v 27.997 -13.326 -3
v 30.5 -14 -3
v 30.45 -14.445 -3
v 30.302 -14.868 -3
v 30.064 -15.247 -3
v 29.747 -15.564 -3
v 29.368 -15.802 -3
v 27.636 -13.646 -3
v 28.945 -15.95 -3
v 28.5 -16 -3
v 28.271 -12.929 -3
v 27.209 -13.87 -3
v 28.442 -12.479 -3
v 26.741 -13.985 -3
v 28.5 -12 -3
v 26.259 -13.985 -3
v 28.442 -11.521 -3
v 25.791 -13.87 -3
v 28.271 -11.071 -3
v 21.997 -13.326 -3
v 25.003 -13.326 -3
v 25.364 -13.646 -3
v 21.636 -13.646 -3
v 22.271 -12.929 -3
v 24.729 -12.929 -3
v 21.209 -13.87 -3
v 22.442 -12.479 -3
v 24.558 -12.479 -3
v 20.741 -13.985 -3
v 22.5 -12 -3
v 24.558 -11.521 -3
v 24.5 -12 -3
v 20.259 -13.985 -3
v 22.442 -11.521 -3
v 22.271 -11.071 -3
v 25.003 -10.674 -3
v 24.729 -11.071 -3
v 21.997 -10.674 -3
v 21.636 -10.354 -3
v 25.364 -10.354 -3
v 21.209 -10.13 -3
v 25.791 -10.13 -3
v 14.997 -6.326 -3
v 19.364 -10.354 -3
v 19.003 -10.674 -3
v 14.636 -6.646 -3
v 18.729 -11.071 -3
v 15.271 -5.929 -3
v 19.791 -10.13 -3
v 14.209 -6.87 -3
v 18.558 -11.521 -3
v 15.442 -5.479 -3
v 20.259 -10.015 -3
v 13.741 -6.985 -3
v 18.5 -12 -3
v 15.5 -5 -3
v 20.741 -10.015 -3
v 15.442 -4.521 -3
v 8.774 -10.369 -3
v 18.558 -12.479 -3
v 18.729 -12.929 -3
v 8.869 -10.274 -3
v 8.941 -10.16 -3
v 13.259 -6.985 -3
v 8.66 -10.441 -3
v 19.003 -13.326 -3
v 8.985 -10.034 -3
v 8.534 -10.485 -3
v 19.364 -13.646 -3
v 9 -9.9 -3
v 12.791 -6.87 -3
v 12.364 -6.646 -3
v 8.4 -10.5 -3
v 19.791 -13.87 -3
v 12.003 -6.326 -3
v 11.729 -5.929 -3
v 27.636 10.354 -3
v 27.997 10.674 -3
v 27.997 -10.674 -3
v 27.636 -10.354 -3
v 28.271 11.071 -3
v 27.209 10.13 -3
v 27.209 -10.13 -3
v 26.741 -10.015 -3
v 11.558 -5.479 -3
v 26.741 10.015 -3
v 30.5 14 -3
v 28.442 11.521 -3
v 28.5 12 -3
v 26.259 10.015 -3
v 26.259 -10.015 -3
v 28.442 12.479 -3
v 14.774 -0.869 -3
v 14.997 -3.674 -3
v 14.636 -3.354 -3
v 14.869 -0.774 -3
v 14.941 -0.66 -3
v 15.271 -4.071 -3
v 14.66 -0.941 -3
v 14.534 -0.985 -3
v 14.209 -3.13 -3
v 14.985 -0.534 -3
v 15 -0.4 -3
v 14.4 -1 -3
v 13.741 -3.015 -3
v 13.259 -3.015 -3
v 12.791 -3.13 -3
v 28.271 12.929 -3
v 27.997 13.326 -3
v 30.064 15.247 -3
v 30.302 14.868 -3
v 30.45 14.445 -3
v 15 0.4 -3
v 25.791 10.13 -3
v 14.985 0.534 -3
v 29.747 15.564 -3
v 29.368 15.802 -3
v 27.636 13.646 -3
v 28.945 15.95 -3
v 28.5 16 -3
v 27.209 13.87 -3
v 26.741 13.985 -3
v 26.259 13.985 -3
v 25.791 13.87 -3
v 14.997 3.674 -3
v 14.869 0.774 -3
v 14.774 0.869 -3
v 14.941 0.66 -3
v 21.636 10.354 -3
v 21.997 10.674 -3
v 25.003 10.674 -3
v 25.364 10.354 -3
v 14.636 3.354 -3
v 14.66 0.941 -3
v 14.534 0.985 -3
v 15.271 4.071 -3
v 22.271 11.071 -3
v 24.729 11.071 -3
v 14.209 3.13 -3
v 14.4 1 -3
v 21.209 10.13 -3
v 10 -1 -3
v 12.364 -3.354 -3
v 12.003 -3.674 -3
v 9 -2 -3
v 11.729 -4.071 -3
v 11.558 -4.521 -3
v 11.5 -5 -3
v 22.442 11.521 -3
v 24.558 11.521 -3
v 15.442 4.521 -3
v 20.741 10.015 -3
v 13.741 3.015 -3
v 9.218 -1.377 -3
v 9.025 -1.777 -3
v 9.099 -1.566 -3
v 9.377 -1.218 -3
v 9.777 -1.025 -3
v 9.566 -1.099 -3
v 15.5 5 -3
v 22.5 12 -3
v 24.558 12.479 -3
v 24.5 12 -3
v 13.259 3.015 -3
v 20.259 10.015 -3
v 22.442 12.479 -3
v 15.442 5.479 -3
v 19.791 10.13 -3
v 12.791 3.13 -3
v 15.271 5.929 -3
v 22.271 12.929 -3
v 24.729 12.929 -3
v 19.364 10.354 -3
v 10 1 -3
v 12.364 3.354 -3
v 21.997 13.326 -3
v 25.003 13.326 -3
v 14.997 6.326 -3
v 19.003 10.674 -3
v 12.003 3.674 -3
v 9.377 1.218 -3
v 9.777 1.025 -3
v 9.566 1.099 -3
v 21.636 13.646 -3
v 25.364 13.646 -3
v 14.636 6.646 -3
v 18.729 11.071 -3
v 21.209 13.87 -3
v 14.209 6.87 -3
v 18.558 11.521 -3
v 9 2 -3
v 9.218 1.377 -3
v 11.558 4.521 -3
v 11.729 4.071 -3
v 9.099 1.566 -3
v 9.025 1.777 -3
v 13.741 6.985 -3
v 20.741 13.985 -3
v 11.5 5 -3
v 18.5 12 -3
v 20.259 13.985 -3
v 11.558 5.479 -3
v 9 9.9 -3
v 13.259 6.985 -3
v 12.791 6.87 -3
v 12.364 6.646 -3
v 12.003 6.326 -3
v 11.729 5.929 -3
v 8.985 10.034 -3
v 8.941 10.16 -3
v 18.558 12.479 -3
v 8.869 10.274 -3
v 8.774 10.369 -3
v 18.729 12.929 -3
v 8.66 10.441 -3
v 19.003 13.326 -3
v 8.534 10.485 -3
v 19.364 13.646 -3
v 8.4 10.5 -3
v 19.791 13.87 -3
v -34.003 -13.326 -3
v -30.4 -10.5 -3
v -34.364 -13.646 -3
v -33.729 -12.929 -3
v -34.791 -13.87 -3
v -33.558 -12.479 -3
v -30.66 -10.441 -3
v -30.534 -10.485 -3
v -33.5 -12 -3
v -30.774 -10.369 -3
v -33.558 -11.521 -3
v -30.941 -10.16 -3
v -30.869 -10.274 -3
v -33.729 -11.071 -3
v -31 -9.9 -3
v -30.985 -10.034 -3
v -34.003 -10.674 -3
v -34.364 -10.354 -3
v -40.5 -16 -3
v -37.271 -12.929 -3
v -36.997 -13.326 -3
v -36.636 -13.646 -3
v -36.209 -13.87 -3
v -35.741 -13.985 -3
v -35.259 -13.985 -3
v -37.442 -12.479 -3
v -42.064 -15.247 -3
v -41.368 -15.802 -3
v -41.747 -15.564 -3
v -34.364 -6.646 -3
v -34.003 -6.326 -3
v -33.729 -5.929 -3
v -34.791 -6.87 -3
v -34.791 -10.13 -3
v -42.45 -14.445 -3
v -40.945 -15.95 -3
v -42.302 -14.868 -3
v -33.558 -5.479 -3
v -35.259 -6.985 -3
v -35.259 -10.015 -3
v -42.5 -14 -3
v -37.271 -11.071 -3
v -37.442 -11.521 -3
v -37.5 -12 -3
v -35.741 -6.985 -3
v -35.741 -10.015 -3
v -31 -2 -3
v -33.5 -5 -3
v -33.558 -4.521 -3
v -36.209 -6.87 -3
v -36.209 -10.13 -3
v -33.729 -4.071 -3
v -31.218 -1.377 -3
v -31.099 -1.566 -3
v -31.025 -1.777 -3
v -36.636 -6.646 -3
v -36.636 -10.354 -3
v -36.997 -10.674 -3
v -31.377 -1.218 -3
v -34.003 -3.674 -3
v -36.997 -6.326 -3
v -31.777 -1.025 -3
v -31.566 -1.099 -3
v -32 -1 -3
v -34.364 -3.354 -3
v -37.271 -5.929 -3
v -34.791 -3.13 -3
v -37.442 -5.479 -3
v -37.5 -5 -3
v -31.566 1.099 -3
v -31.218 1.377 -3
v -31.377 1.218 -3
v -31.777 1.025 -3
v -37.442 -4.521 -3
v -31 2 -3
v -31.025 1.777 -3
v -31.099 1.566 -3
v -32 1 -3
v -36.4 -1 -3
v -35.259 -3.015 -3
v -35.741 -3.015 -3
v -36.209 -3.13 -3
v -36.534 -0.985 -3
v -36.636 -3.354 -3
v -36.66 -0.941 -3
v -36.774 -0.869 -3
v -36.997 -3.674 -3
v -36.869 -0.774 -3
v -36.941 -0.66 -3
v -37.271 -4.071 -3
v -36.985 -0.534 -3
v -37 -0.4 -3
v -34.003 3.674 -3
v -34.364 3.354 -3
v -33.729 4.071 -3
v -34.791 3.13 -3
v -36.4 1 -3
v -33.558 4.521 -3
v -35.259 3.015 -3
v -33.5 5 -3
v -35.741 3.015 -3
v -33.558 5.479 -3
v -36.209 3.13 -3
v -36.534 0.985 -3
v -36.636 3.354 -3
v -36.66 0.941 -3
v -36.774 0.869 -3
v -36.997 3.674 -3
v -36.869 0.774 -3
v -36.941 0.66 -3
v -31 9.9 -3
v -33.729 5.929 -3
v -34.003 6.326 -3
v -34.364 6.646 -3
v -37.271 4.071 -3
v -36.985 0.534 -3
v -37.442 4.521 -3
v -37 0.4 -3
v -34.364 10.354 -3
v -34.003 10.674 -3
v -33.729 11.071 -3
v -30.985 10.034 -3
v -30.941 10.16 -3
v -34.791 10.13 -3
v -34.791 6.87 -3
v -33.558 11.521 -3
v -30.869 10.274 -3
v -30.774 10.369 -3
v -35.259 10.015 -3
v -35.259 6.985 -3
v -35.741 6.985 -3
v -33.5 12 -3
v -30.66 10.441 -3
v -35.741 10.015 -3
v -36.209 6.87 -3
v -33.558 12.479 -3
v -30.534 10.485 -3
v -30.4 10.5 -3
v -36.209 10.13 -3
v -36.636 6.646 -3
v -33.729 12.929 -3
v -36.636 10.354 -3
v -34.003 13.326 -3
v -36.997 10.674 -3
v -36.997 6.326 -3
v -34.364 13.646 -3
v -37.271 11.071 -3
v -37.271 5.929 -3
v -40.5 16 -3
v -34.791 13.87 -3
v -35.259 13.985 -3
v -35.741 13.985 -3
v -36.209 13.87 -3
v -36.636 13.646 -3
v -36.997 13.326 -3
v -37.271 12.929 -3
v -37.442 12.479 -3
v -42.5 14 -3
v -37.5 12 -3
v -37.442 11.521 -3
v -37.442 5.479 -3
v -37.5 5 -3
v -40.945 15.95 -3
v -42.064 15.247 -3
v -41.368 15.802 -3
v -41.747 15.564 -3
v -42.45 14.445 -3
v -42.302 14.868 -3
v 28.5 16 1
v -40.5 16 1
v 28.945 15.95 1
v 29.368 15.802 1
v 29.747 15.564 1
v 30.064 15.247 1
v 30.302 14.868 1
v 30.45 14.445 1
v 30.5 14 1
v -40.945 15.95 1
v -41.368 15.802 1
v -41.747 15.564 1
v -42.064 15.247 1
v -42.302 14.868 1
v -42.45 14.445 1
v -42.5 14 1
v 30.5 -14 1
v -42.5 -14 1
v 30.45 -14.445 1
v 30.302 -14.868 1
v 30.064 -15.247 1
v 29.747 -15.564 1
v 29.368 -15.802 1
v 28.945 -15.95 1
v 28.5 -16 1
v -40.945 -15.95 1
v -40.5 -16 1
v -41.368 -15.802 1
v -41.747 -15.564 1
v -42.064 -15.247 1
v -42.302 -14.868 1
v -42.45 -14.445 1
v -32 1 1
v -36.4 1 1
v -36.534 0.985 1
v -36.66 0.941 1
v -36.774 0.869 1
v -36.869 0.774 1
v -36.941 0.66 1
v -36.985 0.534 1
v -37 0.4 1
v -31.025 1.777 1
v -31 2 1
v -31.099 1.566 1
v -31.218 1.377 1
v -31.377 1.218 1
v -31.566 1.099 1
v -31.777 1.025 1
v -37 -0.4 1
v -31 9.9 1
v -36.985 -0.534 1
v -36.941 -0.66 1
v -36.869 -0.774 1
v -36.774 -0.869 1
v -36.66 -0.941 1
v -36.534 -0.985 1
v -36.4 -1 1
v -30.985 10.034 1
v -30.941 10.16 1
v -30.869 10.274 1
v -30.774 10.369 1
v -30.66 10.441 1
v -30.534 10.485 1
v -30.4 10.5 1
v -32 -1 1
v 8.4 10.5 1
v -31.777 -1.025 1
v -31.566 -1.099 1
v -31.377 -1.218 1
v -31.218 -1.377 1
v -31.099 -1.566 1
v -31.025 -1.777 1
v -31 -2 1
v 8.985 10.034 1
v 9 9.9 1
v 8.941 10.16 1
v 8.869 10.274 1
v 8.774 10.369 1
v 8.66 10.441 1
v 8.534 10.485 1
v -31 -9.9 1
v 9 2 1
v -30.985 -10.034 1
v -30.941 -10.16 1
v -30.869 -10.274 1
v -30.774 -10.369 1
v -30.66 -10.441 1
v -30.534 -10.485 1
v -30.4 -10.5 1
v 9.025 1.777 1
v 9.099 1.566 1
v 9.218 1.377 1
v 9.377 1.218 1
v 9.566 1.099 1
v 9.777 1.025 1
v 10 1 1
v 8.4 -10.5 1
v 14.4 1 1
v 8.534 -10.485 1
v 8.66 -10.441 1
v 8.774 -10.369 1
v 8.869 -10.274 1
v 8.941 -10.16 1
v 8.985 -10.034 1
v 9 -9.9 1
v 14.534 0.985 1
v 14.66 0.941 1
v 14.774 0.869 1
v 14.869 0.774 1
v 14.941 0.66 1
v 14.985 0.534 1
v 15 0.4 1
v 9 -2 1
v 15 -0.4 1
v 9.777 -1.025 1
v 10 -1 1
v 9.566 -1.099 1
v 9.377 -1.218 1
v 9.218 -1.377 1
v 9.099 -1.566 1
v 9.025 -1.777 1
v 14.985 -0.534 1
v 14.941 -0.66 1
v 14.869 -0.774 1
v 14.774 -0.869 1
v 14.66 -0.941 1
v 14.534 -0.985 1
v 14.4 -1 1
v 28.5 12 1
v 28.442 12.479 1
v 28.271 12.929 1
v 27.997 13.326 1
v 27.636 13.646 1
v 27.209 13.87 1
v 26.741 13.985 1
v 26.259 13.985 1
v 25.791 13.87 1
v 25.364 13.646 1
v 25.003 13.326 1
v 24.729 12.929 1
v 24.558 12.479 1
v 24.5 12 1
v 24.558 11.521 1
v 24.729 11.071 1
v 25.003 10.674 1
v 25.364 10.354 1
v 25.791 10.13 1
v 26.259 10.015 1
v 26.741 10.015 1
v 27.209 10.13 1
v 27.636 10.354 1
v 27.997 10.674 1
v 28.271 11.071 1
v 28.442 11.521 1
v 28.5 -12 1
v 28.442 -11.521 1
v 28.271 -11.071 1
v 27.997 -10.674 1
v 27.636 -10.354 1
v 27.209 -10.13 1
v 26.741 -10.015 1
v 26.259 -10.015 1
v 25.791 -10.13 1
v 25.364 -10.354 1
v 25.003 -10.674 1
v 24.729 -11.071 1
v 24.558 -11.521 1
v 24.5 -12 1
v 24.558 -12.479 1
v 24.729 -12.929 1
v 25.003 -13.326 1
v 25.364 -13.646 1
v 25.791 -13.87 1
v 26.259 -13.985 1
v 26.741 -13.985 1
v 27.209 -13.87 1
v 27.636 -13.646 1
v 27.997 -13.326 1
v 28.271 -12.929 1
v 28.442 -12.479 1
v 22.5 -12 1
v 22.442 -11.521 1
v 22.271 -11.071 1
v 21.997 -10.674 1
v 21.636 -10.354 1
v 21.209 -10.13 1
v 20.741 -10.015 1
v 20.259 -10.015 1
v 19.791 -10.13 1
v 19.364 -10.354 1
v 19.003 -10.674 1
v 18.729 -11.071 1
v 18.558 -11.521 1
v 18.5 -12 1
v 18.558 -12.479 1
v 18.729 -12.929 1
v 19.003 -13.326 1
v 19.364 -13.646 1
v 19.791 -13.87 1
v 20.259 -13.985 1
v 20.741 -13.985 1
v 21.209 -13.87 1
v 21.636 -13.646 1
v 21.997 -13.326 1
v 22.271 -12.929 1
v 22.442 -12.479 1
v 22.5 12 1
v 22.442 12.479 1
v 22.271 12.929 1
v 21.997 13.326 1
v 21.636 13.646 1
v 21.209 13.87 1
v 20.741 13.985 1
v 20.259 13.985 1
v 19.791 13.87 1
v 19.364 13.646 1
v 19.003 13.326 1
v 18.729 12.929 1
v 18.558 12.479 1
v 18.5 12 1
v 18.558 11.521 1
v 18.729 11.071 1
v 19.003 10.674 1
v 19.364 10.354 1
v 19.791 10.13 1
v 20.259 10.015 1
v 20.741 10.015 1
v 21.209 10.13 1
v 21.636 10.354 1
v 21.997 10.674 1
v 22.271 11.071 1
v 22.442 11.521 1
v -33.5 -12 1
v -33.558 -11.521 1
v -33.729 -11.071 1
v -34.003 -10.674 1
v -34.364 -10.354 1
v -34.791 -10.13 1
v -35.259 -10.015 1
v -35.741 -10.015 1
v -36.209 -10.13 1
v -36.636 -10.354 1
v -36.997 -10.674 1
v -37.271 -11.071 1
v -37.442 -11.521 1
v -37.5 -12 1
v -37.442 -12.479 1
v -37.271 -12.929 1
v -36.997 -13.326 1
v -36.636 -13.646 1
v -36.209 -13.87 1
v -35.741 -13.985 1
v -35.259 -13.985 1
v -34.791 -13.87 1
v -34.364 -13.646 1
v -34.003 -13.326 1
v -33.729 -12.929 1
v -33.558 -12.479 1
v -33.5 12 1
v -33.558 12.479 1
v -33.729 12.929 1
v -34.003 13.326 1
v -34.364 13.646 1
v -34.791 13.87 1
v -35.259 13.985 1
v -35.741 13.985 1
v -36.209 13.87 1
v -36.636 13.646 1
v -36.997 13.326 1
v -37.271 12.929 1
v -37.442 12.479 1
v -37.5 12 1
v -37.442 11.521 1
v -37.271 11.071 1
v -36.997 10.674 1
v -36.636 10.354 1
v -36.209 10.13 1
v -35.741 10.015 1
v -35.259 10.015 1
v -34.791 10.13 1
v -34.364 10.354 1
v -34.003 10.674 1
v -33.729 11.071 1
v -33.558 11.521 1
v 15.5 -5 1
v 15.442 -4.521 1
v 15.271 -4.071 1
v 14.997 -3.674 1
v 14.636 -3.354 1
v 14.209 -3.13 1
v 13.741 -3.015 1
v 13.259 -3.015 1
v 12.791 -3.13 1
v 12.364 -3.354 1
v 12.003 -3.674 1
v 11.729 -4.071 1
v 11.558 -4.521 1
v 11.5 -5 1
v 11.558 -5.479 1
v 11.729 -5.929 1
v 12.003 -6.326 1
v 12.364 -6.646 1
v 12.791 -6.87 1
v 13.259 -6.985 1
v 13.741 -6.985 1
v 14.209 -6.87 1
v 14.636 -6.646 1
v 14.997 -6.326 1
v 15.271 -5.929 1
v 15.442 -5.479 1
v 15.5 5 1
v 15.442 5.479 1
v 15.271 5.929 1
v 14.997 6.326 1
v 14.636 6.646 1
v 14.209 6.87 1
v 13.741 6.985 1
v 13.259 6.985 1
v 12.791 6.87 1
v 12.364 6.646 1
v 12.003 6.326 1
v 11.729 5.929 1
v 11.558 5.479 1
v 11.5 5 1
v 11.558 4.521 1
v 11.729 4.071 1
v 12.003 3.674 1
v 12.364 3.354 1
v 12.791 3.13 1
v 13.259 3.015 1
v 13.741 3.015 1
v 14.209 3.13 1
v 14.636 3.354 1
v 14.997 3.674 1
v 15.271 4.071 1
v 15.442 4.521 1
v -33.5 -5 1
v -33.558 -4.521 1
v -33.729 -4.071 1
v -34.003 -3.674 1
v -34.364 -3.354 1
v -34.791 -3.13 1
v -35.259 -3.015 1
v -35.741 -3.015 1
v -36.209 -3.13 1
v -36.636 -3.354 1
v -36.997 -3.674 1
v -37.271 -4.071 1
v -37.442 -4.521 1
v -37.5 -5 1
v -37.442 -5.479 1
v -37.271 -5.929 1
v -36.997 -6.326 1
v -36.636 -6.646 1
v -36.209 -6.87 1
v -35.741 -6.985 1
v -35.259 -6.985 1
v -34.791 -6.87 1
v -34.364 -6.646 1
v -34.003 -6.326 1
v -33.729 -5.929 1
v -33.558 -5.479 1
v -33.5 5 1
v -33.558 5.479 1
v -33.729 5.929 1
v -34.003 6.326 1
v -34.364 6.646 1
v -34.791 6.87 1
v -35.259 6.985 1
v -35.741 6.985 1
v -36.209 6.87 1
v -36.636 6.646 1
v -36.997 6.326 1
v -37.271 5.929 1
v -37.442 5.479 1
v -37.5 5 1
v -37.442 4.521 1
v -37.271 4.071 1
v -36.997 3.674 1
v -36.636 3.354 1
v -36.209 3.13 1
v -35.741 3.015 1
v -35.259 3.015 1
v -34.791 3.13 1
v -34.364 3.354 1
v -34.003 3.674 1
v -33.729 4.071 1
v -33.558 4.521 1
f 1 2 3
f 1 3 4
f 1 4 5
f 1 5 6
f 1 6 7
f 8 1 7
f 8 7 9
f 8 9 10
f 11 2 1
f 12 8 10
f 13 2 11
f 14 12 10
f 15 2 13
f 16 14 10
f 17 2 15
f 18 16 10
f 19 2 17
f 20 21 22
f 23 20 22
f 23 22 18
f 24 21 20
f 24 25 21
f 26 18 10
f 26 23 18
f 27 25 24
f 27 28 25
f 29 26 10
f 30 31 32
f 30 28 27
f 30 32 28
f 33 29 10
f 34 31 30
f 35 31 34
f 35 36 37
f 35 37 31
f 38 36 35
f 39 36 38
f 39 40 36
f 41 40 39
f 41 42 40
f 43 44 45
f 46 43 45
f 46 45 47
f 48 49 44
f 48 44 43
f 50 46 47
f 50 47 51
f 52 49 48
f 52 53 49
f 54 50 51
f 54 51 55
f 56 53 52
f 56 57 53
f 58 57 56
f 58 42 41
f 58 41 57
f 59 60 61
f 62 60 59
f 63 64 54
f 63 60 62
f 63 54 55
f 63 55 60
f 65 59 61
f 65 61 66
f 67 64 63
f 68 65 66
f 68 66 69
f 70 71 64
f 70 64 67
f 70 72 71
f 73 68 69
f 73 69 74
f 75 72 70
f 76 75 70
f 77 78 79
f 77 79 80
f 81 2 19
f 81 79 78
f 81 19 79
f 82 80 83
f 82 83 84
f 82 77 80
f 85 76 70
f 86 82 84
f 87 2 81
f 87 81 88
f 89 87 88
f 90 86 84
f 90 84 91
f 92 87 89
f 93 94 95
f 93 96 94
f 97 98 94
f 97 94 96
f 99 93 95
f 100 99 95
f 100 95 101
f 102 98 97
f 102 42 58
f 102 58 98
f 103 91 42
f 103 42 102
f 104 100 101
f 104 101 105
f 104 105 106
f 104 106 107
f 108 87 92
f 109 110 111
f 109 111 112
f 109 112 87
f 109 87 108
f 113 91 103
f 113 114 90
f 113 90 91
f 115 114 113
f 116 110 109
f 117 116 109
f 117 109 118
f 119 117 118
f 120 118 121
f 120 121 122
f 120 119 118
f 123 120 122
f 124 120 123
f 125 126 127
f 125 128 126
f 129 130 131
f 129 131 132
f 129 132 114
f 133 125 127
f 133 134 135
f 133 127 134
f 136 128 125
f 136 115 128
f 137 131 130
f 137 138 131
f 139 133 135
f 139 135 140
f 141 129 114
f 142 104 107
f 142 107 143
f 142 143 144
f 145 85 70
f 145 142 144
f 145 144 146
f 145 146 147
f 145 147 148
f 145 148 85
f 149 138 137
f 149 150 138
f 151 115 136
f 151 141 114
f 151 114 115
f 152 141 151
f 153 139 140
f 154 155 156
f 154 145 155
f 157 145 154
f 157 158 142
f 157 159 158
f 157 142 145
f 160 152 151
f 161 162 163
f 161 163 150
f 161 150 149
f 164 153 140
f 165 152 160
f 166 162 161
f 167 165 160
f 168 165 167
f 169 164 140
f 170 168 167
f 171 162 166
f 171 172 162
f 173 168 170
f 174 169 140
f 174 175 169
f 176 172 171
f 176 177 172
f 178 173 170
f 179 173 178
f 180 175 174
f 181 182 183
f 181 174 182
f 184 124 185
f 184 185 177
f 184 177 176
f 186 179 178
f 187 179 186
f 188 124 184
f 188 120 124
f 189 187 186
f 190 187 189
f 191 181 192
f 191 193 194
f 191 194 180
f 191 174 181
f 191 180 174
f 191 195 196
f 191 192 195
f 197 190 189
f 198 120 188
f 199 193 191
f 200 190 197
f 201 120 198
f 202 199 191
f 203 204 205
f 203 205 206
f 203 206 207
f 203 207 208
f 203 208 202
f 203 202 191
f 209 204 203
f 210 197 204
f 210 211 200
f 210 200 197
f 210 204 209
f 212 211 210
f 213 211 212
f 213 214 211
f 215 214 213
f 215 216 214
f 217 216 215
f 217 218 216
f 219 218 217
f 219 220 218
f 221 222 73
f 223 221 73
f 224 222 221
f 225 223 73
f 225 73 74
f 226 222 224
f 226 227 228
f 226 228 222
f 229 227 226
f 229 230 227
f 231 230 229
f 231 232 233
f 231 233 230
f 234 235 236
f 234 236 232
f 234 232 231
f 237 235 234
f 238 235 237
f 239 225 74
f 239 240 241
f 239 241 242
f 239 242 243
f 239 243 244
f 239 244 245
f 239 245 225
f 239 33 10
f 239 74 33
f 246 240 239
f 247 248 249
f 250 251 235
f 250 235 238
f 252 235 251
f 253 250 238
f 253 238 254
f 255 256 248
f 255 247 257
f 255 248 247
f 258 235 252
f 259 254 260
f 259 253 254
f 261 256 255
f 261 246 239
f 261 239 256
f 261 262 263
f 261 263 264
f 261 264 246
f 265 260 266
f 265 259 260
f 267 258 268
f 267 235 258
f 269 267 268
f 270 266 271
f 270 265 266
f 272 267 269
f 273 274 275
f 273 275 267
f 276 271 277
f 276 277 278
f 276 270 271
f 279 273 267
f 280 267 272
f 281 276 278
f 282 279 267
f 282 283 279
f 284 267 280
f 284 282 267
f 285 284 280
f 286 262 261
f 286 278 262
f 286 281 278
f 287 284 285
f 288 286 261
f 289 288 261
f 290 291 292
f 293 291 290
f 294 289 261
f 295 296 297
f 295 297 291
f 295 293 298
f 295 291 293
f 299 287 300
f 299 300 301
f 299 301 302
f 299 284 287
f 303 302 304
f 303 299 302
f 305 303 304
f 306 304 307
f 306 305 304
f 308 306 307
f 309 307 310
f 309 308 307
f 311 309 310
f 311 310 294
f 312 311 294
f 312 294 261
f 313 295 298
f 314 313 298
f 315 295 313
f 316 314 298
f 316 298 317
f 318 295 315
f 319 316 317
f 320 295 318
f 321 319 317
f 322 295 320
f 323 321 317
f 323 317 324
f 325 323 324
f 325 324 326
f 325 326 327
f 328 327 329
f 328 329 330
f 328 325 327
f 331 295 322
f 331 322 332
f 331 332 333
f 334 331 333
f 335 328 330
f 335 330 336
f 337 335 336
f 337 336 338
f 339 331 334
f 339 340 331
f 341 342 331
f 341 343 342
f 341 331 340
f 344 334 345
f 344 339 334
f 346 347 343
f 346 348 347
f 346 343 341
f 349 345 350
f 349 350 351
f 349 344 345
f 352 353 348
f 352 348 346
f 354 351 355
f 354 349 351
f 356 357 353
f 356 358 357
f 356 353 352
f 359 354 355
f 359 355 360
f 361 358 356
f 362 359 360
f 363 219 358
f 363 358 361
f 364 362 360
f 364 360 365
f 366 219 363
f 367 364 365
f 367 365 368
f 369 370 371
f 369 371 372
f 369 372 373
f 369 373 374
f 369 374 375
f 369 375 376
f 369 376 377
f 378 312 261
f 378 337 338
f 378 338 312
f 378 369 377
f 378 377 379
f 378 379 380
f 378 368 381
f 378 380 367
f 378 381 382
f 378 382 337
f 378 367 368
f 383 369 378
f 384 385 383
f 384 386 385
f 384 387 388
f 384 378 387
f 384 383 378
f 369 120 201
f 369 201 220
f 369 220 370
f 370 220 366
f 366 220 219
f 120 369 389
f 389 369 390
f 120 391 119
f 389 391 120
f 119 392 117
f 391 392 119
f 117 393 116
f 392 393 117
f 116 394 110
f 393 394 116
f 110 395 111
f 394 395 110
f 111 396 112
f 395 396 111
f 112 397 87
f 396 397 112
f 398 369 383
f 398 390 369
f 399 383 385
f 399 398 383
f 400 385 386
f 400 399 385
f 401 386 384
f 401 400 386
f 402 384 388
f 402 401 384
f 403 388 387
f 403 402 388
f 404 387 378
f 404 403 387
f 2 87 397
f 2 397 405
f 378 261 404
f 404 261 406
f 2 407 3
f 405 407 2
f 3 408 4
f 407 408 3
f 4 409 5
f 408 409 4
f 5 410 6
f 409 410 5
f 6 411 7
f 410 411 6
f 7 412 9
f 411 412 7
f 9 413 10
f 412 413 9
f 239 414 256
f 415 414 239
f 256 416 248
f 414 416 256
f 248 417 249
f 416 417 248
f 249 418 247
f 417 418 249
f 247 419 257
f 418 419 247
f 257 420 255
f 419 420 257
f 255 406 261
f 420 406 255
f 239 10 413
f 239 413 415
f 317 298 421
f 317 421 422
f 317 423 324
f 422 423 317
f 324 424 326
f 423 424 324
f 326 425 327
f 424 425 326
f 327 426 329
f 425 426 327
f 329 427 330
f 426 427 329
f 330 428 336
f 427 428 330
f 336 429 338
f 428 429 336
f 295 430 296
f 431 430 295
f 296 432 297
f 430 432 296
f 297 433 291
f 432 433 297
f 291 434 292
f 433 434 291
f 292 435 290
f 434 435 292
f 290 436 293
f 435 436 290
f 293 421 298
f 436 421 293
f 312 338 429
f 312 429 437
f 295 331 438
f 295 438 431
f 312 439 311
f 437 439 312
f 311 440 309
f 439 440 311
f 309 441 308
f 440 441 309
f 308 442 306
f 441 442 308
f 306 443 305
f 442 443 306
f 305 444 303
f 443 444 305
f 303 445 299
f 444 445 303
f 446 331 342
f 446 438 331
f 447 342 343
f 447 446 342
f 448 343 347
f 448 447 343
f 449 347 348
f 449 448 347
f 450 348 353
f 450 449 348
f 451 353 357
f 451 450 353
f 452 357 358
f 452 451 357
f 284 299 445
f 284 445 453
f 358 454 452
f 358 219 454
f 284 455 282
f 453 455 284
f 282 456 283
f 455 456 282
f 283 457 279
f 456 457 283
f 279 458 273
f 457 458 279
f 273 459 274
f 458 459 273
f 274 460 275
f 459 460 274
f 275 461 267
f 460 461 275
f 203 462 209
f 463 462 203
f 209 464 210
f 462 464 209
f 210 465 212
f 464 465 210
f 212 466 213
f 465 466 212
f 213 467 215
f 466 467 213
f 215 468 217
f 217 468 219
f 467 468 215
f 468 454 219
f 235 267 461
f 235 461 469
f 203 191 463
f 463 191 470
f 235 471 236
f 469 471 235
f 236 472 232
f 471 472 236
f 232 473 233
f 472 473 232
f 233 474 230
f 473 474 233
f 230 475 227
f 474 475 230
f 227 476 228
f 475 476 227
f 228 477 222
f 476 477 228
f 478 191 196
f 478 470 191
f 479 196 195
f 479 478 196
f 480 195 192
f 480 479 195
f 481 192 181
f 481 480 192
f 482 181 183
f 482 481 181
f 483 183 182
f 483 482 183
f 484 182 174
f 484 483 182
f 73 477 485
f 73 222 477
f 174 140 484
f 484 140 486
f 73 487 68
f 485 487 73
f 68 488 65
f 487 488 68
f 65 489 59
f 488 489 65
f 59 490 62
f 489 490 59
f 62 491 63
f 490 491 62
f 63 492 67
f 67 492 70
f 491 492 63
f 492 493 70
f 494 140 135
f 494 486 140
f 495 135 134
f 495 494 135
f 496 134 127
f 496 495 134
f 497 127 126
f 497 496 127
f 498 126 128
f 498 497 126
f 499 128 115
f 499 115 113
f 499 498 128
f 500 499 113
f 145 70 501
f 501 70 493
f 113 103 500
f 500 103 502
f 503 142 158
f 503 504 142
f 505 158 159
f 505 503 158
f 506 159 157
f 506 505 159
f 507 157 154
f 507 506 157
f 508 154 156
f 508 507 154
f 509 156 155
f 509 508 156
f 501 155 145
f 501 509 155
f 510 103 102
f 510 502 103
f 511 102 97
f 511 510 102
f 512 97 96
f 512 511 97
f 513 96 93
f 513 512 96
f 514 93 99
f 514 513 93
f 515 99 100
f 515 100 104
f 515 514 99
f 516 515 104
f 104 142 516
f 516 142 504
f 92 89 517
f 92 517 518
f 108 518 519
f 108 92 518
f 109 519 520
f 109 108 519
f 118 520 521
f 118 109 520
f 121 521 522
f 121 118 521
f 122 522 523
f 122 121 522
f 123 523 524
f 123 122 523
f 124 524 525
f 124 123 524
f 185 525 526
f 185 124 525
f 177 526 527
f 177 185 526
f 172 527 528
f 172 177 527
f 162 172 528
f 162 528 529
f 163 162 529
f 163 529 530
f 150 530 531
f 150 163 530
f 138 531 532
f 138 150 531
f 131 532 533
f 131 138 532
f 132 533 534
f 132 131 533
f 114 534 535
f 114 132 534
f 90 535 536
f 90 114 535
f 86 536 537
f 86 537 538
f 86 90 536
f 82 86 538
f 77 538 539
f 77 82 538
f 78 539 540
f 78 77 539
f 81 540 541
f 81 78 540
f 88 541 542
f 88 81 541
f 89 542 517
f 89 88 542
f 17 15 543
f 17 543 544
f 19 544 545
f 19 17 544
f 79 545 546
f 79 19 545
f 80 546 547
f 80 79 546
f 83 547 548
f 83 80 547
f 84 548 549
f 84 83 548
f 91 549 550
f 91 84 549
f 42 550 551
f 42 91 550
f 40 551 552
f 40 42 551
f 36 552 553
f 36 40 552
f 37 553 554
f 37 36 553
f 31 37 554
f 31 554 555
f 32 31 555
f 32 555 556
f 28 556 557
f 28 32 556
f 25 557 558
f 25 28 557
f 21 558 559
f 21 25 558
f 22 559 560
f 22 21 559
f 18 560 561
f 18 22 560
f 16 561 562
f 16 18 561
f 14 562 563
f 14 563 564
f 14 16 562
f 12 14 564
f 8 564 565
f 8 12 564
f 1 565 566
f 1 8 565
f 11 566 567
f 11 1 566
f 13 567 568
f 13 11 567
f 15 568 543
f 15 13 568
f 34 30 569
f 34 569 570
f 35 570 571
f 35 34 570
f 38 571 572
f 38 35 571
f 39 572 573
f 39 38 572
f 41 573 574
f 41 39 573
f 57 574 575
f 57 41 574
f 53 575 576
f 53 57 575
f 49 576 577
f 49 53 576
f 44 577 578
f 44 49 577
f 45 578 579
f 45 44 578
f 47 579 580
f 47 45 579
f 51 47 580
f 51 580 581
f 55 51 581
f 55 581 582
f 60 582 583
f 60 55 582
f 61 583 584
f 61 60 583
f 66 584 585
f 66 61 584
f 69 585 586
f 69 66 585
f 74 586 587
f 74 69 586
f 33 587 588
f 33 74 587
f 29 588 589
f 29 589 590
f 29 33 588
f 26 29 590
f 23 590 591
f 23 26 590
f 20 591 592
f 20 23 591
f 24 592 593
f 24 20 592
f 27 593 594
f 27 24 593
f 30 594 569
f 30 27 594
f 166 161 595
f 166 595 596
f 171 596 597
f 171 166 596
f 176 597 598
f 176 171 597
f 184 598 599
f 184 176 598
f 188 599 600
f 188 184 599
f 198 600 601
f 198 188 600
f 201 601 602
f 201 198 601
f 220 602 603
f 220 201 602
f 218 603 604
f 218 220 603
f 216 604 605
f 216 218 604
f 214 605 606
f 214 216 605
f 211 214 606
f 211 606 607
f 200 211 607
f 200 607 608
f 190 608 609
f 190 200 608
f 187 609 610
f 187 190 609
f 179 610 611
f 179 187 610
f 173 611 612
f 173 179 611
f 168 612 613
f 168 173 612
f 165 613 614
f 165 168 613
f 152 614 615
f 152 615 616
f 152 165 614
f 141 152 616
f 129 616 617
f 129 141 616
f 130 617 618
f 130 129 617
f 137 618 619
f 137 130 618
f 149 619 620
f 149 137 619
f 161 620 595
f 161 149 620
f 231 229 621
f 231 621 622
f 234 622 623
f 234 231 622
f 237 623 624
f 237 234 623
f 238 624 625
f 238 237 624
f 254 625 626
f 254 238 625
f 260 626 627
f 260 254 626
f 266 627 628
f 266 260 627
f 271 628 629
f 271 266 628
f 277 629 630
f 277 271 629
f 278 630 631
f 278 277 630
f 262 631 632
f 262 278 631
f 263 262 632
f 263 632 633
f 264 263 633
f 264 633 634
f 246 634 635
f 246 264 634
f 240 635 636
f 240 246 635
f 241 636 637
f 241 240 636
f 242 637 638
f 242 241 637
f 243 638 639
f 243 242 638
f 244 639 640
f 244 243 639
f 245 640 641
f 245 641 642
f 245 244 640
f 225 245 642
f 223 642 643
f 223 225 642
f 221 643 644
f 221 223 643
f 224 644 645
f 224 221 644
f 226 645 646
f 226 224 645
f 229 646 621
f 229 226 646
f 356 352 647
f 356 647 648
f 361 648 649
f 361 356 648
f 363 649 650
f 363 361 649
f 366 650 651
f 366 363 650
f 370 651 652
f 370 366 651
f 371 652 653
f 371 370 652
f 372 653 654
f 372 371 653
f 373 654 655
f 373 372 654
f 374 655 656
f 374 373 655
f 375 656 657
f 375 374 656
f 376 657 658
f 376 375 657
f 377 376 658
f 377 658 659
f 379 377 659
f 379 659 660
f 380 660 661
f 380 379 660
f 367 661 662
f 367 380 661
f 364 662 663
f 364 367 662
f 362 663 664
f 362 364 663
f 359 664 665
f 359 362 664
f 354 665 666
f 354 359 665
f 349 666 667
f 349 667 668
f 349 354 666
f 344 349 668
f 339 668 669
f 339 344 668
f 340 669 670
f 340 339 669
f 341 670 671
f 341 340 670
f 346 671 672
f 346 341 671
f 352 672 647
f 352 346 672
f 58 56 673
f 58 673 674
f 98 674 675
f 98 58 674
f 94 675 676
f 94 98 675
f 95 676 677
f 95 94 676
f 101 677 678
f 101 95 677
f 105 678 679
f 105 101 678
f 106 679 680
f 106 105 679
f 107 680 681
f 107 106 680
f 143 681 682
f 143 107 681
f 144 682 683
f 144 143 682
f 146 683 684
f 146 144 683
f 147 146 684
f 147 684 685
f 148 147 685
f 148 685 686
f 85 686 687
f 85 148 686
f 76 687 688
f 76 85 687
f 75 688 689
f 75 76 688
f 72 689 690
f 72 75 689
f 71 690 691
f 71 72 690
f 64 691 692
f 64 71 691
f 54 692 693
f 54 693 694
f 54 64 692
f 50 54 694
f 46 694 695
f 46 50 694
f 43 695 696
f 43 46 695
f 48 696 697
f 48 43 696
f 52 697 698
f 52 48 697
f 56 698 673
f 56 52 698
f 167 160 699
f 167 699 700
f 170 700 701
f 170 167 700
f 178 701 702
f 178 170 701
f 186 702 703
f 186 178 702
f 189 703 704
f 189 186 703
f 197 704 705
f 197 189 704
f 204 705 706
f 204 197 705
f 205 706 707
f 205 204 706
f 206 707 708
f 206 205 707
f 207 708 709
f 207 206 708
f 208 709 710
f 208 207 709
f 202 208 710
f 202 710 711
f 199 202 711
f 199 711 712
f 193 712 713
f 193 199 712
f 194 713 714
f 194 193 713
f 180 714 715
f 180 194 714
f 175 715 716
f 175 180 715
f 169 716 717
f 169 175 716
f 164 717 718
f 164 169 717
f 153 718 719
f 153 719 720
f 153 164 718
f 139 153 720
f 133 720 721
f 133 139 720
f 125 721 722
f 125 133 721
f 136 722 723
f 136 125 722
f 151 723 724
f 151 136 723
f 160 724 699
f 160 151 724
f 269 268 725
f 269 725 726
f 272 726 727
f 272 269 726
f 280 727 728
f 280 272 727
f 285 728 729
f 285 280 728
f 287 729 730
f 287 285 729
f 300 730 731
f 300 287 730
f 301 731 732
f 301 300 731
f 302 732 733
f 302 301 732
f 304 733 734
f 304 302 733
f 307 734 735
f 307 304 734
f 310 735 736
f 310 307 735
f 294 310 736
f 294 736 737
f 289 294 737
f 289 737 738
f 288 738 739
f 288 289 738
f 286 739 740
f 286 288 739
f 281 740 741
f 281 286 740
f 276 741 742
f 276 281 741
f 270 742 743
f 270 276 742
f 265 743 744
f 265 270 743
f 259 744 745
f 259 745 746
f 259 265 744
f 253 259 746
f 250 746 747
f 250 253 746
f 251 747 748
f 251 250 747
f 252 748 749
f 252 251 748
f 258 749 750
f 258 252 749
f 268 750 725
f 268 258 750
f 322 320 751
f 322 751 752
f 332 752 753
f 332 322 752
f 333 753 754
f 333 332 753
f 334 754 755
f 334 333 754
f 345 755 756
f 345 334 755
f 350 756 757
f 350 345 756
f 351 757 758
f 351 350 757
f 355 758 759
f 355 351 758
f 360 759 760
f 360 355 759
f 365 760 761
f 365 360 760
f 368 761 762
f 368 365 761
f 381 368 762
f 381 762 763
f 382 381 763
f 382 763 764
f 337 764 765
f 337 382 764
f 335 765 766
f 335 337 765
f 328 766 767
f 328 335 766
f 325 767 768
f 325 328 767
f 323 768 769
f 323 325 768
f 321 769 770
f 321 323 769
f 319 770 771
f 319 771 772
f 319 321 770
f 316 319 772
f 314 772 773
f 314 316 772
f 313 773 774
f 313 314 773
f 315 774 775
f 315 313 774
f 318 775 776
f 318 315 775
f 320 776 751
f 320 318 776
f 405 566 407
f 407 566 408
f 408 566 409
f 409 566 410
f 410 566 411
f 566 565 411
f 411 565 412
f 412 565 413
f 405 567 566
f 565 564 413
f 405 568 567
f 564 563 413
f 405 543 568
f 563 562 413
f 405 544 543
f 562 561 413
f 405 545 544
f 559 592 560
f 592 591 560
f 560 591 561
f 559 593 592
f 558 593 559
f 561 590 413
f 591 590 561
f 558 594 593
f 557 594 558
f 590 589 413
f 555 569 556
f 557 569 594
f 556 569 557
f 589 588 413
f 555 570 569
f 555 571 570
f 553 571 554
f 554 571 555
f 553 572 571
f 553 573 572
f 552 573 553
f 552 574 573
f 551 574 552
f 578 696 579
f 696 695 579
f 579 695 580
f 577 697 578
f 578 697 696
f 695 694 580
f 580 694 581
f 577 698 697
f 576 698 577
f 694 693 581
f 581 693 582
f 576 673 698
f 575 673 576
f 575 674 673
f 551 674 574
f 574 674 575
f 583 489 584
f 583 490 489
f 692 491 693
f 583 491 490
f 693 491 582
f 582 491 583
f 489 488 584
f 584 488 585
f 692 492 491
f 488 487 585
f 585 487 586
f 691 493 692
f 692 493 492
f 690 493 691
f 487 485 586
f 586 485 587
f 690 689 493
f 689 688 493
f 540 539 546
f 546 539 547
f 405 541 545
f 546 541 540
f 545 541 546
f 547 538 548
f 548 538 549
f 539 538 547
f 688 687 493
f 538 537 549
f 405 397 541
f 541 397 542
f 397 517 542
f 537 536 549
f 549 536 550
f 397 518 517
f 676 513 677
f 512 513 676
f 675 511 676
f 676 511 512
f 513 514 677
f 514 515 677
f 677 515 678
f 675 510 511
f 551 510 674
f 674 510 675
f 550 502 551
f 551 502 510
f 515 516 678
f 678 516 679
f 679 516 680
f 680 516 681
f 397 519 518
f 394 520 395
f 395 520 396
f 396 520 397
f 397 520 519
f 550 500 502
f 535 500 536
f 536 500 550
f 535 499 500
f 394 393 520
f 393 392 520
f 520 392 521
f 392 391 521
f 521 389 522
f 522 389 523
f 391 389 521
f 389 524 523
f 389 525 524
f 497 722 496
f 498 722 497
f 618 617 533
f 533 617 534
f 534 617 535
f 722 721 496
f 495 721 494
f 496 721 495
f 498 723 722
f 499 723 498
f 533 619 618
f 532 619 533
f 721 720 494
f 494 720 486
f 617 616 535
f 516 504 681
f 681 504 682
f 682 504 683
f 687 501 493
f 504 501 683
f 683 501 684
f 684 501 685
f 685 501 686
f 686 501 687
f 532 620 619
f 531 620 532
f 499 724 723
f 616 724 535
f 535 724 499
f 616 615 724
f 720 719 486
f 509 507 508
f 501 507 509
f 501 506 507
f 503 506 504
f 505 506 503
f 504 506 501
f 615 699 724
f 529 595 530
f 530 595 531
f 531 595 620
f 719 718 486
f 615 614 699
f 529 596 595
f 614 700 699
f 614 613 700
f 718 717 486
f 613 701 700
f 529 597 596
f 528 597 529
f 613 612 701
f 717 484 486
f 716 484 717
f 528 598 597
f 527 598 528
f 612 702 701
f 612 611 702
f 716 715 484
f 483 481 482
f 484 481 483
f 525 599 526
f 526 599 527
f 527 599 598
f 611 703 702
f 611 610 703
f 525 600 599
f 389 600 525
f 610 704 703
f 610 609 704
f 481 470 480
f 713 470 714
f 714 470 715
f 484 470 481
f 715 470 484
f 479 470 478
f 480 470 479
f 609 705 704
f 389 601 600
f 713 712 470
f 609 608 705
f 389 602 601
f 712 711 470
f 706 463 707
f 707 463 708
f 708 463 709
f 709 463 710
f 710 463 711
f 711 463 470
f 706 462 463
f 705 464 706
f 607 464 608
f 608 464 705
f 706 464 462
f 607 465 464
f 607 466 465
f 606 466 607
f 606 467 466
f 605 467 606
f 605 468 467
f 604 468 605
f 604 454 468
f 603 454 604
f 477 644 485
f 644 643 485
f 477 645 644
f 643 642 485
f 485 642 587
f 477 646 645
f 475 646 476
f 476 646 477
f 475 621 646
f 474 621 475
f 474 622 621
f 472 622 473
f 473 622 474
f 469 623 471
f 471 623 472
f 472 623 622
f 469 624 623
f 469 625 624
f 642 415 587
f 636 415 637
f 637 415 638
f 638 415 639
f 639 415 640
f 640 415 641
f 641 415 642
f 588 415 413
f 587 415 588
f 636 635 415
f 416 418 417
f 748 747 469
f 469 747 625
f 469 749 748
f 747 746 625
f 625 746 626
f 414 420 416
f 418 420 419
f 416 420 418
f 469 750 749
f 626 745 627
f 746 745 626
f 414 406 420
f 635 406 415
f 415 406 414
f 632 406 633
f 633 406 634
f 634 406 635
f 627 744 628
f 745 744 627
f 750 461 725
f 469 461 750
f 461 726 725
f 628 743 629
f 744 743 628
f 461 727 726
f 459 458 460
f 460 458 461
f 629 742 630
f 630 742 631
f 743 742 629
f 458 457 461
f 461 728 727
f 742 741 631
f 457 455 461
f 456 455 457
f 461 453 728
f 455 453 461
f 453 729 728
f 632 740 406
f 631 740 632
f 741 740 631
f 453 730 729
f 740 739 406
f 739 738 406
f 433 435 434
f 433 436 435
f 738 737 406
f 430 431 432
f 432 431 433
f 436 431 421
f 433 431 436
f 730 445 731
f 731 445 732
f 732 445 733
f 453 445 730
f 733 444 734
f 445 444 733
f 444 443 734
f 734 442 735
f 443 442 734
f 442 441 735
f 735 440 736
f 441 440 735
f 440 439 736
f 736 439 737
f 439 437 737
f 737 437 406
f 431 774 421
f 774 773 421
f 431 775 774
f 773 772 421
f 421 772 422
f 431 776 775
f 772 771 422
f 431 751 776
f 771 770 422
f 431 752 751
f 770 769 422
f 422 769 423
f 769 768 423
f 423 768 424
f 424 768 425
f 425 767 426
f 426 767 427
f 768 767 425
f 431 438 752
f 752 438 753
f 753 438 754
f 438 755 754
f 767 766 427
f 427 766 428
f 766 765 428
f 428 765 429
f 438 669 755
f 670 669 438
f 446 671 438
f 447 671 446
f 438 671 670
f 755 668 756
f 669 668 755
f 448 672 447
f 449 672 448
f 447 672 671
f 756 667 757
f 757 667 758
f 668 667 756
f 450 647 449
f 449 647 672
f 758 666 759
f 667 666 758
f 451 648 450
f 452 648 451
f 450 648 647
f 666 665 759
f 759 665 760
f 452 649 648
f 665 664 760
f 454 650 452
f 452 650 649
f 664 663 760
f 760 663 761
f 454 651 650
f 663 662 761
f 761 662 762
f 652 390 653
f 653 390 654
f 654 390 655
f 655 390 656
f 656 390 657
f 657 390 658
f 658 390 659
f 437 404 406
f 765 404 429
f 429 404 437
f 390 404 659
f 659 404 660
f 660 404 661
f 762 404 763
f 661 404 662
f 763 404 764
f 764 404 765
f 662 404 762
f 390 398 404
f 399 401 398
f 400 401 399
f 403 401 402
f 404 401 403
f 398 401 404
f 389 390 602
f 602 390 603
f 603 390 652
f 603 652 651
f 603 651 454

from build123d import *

# Parameters (mm, degrees)
SKETCH007_W = 73
SKETCH007_H = 32
SKETCH007_R = 2
PAD_DEPTH   = 4
FILLET_R    = 0.6
FILLET001_R = 1
FILLET002_R = 0.6
FILLET003_R = 2


with BuildPart() as part:
    # Sketch007 → Pad (new body)
    with BuildSketch(Plane.XY.offset(-3)):
        with Locations((-6, 0)):
            Rectangle(SKETCH007_W, SKETCH007_H)
        with Locations((-35.5, 5)):
            Circle(SKETCH007_R, mode=Mode.SUBTRACT)
        with Locations((-35.5, -5)):
            Circle(SKETCH007_R, mode=Mode.SUBTRACT)
        with Locations((13.5, 5)):
            Circle(SKETCH007_R, mode=Mode.SUBTRACT)
        with Locations((13.5, -5)):
            Circle(SKETCH007_R, mode=Mode.SUBTRACT)
        with Locations((-35.5, 12)):
            Circle(SKETCH007_R, mode=Mode.SUBTRACT)
        with Locations((-35.5, -12)):
            Circle(SKETCH007_R, mode=Mode.SUBTRACT)
        with Locations((20.5, 12)):
            Circle(SKETCH007_R, mode=Mode.SUBTRACT)
        with Locations((20.5, -12)):
            Circle(SKETCH007_R, mode=Mode.SUBTRACT)
        with Locations((26.5, -12)):
            Circle(SKETCH007_R, mode=Mode.SUBTRACT)
        with Locations((26.5, 12)):
            Circle(SKETCH007_R, mode=Mode.SUBTRACT)
        Polygon((-31, 10.5), (9, 10.5), (9, 1), (15, 1), (15, -1), (9, -1), (9, -10.5), (-31, -10.5), (-31, -1), (-37, -1), (-37, 1), (-31, 1), align=None, mode=Mode.SUBTRACT)
    extrude(amount=PAD_DEPTH)

    # Fillet
    fillet_edges = [part.edges().sort_by_distance(p)[0] for p in [
        (9, -10.5, -1),
        (9, 10.5, -1),
        (-31, 10.5, -1),
        (-31, -10.5, -1),
    ]]
    fillet(fillet_edges, radius=FILLET_R)

    # Fillet001
    fillet001_edges = [part.edges().sort_by_distance(p)[0] for p in [
        (-31, -1, -1),
        (-31, 1, -1),
        (9, -1, -1),
        (9, 1, -1),
    ]]
    fillet(fillet001_edges, radius=FILLET001_R)

    # Fillet002
    fillet002_edges = [part.edges().sort_by_distance(p)[0] for p in [
        (-37, -1, -1),
        (-37, 1, -1),
        (15, -1, -1),
        (15, 1, -1),
    ]]
    fillet(fillet002_edges, radius=FILLET002_R)

    # Fillet003
    fillet003_edges = [part.edges().sort_by_distance(p)[0] for p in [
        (30.5, 16, -1),
        (30.5, -16, -1),
        (-42.5, 16, -1),
        (-42.5, -16, -1),
    ]]
    fillet(fillet003_edges, radius=FILLET003_R)


solid = part.part
